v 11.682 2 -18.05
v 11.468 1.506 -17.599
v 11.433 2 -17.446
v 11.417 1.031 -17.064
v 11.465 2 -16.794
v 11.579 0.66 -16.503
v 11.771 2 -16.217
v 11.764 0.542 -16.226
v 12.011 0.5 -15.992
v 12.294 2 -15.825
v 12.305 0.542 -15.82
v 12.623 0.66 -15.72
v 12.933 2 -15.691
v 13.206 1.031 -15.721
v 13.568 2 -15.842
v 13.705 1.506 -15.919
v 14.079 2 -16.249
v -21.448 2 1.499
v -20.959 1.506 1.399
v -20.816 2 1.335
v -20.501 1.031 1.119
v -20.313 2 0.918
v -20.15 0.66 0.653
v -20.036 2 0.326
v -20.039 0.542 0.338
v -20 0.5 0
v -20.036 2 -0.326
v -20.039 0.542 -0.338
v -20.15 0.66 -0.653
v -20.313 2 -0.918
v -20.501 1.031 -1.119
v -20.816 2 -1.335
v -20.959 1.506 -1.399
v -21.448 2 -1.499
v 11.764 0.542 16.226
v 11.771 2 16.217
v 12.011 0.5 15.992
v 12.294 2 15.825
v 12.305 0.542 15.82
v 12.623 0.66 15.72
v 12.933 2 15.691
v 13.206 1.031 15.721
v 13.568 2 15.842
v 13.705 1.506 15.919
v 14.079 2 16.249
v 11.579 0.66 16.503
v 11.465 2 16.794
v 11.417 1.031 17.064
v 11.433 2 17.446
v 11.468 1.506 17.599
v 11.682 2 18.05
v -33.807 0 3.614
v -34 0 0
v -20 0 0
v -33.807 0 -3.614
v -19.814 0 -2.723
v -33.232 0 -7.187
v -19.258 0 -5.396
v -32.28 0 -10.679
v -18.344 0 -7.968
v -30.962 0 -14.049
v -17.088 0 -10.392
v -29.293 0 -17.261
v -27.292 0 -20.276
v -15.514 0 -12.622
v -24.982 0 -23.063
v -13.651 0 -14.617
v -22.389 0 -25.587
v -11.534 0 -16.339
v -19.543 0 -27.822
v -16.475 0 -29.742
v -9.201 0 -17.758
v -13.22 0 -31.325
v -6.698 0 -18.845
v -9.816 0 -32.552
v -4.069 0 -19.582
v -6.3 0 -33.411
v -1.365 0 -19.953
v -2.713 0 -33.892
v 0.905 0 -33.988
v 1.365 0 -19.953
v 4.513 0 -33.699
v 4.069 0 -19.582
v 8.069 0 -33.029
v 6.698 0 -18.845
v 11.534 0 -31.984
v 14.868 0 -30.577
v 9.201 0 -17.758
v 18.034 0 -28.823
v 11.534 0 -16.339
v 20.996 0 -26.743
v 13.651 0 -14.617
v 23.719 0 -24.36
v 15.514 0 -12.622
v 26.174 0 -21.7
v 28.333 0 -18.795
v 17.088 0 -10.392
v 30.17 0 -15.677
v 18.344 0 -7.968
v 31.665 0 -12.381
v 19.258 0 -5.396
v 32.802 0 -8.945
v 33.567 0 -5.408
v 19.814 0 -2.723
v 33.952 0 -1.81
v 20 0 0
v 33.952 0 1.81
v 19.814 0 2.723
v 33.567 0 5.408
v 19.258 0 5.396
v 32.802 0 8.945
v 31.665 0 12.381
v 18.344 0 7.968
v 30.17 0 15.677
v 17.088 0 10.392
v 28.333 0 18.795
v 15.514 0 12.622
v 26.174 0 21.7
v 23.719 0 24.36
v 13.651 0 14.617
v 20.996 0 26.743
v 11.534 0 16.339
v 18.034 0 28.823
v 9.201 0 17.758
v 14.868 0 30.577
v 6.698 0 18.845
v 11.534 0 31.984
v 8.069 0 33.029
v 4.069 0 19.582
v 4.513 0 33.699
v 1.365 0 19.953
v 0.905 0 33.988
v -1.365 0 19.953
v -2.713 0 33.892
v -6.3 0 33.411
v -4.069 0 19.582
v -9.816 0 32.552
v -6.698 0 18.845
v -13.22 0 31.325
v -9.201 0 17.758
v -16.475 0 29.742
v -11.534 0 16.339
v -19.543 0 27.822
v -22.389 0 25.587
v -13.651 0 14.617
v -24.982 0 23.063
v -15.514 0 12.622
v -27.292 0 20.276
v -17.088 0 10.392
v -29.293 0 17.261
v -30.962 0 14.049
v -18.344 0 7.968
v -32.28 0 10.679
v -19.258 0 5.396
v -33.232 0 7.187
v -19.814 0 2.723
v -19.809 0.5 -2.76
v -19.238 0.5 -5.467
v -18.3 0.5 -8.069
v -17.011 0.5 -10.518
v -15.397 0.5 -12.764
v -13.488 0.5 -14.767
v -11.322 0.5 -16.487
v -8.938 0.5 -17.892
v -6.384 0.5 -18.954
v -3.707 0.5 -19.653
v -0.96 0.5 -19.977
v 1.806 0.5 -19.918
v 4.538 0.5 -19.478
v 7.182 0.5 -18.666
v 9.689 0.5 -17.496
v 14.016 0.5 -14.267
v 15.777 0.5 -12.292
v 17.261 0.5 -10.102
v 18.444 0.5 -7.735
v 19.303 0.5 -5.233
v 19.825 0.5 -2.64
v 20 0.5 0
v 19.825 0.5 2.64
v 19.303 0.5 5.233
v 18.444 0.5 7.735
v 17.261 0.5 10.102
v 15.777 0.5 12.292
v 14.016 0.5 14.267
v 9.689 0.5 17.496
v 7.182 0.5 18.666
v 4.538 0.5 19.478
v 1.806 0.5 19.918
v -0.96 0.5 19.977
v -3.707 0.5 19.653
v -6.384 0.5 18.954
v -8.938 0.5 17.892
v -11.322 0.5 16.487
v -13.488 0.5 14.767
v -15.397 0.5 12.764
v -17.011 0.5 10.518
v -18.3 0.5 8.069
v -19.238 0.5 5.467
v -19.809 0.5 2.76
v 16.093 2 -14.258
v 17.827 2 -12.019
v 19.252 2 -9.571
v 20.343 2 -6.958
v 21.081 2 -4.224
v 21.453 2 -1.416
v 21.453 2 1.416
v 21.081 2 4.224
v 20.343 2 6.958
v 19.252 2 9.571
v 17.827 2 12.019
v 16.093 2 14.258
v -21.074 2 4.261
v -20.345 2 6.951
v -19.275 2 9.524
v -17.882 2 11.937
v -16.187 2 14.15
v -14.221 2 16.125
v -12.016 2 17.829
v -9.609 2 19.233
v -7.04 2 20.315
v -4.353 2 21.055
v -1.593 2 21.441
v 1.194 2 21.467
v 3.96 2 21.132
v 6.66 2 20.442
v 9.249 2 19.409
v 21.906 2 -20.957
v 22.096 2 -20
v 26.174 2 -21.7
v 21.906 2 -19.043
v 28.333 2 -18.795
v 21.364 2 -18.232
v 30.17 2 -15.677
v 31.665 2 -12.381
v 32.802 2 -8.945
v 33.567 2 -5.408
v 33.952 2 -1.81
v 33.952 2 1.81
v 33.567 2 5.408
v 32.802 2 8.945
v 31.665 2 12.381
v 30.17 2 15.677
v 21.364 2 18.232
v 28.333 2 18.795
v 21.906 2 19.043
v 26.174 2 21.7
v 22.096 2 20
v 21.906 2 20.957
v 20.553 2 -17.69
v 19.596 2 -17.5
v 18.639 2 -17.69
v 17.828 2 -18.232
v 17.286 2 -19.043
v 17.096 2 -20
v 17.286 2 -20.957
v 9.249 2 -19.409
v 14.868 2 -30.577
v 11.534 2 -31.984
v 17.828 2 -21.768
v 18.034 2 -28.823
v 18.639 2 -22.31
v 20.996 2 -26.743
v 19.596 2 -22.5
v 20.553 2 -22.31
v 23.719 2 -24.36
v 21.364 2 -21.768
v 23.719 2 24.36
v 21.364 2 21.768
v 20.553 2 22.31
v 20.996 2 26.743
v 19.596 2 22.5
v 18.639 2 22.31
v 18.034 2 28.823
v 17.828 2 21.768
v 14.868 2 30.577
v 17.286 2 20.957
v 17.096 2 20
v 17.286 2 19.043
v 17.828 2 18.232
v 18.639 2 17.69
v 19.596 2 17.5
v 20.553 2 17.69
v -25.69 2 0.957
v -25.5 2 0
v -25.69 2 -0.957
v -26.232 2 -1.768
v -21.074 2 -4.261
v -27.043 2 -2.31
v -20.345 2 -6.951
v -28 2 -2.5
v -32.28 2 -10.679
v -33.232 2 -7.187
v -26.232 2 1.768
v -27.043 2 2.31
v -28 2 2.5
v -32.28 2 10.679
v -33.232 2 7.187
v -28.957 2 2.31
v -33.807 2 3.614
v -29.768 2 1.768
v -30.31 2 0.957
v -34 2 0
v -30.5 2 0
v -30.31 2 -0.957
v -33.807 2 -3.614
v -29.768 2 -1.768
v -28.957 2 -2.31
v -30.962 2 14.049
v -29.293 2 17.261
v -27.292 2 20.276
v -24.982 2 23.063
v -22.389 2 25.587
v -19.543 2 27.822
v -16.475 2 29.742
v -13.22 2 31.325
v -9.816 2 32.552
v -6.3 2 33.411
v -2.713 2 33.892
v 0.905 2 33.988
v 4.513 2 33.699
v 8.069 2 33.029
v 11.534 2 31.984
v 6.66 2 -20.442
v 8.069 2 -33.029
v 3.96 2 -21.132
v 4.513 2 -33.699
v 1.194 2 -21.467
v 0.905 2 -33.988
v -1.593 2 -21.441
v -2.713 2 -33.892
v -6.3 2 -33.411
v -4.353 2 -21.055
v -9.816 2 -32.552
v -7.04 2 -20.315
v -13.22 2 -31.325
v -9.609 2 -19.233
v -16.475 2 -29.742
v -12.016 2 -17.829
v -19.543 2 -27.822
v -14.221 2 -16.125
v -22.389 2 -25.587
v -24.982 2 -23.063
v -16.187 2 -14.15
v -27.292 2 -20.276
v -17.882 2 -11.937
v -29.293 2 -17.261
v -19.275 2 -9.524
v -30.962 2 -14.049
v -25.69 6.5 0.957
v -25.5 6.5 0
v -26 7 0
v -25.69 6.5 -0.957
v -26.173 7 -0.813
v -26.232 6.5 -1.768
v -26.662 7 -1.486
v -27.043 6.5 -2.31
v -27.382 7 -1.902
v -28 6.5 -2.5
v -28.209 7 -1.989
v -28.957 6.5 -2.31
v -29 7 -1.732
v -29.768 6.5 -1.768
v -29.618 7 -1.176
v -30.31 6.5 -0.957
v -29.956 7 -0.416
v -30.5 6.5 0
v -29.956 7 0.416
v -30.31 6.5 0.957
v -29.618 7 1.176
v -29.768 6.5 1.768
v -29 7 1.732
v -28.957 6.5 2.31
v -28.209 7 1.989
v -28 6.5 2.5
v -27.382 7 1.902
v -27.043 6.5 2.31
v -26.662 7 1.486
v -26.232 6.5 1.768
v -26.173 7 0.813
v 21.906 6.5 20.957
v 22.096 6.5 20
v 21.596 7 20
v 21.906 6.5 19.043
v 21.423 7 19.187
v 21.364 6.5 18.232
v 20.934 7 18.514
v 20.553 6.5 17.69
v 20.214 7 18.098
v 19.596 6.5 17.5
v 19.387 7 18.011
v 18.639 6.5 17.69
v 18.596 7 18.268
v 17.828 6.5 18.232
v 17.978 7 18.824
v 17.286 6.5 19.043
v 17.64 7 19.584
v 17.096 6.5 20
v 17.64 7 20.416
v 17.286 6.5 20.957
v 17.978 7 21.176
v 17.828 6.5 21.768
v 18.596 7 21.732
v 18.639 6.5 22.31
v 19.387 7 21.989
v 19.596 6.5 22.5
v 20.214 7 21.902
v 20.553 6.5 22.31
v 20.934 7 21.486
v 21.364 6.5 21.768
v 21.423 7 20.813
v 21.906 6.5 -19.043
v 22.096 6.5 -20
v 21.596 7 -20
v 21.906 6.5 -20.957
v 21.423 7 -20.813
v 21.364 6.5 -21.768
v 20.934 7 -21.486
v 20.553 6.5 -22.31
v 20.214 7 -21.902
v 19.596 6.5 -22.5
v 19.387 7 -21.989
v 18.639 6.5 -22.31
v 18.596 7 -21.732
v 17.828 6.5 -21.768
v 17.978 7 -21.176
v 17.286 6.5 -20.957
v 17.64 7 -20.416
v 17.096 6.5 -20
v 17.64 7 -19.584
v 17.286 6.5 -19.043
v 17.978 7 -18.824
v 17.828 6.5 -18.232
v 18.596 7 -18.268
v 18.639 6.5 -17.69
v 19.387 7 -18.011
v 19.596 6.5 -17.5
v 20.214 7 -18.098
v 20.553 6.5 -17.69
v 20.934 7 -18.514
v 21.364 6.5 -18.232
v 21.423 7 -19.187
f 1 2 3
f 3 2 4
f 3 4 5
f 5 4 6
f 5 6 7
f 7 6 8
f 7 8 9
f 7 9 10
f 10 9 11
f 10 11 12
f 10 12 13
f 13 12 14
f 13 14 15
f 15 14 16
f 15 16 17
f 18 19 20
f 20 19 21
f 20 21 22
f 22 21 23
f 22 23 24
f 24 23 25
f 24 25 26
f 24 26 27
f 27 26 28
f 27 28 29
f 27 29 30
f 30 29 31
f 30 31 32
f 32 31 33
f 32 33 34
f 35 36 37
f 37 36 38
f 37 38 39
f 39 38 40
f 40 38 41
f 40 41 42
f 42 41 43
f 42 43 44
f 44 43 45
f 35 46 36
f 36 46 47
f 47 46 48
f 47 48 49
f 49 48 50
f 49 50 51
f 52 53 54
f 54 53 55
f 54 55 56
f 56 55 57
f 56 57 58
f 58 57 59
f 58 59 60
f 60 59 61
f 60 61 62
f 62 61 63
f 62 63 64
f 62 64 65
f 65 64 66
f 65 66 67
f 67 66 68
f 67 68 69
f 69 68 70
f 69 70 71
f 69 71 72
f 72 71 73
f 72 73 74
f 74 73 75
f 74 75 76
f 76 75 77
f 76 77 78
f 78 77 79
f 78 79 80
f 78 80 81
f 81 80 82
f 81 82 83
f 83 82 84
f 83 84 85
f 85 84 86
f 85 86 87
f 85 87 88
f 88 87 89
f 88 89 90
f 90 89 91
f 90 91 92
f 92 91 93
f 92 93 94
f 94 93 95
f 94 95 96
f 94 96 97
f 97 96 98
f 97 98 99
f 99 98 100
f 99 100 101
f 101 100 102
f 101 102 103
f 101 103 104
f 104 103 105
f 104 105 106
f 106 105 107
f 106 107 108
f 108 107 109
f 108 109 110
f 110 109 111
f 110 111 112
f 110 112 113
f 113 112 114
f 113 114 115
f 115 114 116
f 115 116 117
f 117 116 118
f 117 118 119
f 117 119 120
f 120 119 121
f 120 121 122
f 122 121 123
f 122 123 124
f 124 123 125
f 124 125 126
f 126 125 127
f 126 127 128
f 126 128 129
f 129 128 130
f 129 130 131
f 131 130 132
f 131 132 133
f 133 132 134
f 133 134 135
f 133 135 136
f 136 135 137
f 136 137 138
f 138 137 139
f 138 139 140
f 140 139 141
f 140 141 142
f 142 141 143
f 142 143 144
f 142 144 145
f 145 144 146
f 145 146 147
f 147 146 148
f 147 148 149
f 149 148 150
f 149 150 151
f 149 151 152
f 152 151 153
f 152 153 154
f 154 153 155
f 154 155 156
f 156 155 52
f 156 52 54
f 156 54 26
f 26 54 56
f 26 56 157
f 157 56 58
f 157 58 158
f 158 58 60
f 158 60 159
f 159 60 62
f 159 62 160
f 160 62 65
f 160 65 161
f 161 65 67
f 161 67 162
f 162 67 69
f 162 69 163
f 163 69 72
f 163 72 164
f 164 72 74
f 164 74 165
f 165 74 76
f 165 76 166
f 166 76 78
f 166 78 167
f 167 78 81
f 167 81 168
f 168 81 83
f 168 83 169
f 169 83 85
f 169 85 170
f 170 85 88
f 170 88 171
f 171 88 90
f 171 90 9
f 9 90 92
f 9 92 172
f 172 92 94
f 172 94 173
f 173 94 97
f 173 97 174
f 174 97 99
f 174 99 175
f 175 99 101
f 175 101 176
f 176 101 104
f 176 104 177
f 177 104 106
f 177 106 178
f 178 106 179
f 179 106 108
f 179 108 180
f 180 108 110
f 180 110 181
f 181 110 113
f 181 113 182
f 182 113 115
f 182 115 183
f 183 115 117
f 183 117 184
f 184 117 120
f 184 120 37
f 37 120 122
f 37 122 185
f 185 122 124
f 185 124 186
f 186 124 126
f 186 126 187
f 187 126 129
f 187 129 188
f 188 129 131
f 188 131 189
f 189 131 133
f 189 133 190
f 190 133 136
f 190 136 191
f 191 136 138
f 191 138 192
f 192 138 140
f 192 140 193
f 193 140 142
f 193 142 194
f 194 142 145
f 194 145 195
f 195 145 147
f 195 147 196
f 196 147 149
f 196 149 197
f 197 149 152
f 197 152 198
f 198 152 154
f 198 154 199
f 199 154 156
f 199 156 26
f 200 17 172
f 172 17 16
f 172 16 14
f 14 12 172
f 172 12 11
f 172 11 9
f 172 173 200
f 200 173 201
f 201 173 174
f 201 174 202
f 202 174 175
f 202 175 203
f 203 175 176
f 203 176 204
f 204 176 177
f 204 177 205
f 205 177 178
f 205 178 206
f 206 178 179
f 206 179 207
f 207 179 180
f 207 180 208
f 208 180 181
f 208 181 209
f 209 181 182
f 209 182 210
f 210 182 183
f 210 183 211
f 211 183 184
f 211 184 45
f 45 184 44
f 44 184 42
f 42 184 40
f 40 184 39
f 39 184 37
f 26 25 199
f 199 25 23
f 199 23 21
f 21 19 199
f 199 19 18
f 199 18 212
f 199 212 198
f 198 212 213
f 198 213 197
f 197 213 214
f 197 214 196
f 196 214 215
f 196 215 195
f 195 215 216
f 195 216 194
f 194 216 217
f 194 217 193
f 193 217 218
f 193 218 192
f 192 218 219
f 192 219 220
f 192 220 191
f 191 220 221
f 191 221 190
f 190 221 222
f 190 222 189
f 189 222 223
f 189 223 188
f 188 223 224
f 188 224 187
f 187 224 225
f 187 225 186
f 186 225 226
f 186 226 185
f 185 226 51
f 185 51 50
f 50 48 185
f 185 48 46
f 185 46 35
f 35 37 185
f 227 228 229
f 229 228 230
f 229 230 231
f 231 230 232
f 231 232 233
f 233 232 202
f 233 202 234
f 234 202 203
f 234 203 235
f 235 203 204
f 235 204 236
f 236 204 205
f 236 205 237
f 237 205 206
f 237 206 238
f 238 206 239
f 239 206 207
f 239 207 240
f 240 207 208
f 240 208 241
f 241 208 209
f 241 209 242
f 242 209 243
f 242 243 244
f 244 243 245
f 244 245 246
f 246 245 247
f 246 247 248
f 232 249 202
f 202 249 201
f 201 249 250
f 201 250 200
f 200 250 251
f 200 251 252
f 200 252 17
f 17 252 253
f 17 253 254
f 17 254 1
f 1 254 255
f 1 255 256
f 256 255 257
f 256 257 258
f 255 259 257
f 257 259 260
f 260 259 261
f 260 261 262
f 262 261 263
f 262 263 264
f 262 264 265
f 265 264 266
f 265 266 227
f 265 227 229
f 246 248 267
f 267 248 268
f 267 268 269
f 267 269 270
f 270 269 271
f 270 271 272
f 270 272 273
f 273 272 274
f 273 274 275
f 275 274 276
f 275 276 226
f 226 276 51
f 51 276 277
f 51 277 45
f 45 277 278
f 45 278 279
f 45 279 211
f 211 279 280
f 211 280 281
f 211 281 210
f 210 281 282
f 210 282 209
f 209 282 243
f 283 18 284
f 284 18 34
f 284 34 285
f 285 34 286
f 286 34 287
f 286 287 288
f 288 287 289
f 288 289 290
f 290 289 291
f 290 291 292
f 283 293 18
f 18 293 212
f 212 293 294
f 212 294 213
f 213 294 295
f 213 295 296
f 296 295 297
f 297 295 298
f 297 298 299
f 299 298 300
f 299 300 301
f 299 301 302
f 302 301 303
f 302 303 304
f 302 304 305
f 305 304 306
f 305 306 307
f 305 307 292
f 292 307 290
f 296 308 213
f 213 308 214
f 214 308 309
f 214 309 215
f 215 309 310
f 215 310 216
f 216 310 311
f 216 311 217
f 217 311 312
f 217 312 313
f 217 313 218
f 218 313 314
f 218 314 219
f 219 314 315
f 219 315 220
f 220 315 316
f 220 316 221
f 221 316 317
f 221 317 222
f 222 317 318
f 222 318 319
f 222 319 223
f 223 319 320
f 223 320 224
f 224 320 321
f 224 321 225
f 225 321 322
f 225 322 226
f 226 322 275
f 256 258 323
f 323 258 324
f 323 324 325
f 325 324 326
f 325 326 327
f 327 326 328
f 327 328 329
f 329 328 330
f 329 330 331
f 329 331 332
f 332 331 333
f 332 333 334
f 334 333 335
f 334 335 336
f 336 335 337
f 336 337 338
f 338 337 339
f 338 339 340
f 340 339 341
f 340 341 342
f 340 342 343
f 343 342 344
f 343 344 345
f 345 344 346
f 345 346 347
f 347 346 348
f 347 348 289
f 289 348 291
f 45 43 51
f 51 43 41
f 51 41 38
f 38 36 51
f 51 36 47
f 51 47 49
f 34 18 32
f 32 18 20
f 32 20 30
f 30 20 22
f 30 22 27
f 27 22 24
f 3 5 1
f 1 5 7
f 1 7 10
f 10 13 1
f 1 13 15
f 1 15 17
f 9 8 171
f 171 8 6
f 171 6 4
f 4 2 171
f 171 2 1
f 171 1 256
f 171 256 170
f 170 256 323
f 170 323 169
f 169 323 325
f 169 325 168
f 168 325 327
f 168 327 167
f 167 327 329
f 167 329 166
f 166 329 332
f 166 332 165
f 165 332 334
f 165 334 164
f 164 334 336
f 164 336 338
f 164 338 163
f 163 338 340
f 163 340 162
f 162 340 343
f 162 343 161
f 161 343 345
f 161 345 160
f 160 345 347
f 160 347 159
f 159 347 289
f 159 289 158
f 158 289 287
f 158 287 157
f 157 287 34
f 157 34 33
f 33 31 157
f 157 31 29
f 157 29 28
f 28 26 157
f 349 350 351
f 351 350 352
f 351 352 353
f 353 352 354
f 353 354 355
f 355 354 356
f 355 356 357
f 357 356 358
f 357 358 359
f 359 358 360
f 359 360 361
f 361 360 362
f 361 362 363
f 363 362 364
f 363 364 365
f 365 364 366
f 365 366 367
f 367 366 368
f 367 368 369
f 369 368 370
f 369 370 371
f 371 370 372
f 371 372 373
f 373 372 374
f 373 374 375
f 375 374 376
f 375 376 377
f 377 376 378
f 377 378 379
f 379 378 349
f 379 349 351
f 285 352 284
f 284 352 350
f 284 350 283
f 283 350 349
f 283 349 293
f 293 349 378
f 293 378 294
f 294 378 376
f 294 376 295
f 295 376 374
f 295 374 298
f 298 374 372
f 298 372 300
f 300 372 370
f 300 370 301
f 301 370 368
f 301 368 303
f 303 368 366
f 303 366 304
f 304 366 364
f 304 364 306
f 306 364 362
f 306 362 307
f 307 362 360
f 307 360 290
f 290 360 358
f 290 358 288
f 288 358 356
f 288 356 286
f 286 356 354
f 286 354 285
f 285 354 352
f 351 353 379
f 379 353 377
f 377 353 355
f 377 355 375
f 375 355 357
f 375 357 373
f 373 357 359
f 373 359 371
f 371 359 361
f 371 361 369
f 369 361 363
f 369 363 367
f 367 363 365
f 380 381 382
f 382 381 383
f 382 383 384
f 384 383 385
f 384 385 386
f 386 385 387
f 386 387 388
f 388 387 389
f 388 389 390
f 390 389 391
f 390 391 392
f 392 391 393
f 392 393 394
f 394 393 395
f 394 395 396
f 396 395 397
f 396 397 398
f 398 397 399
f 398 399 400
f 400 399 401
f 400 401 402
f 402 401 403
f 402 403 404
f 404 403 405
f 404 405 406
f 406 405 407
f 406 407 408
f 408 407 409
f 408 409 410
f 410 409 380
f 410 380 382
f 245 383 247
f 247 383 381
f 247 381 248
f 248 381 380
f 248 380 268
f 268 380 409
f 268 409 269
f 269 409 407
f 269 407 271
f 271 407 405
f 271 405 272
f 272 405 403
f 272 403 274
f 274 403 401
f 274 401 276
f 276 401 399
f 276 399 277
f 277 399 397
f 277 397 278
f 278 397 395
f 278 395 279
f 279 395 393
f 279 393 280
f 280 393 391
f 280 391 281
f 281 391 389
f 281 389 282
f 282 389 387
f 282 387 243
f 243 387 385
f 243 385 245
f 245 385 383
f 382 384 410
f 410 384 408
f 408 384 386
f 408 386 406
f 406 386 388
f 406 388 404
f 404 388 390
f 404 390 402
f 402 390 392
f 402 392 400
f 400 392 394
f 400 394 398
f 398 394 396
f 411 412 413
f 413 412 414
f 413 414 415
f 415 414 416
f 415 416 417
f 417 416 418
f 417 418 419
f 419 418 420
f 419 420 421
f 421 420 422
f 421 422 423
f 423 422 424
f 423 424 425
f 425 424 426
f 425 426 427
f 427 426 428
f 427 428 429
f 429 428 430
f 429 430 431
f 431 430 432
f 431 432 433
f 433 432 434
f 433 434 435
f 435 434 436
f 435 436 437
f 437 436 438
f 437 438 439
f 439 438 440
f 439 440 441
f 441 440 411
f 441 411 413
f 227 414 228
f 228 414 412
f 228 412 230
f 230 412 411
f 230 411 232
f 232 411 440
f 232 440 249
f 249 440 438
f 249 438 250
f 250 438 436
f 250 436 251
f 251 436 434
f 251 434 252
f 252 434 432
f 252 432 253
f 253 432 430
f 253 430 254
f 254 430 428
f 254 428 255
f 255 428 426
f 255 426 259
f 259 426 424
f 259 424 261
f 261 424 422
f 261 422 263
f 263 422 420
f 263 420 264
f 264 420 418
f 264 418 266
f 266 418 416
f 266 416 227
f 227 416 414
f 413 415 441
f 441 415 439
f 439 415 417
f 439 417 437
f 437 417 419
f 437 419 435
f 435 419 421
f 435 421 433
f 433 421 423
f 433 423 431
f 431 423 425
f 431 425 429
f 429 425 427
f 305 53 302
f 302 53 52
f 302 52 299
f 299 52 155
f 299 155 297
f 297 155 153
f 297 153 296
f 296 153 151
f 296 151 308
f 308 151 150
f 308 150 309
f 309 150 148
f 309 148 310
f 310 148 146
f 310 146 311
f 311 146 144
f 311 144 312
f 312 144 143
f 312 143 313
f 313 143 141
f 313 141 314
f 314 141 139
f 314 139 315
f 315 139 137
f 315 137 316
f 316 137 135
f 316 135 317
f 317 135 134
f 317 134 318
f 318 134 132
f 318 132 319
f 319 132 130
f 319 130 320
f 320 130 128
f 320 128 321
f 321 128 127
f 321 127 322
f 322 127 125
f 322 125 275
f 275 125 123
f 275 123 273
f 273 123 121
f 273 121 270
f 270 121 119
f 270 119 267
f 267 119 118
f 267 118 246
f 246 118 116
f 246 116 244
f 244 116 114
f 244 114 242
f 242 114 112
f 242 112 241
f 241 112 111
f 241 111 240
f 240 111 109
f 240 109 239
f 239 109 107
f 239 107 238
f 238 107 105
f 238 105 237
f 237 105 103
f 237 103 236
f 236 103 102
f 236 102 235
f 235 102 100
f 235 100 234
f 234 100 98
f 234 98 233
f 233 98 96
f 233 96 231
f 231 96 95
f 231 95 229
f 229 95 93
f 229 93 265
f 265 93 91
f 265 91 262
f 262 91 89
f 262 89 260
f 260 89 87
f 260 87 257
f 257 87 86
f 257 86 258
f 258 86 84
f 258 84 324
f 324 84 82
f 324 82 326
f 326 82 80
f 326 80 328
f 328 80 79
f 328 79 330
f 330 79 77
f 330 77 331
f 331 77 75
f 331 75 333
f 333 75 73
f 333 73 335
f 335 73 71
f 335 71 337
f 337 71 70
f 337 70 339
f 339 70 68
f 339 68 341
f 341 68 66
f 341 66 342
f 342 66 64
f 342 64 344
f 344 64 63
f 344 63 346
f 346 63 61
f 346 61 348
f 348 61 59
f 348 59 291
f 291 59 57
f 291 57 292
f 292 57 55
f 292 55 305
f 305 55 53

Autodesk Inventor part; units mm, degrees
ref_plane "YZ Plane" through (0, 0, 0) normal (1, 0, 0) x (0, 1, 0)
ref_plane "XZ Plane" through (0, 0, 0) normal (0, 1, 0) x (-1, 0, 0)
ref_plane "XY Plane" through (0, 0, 0) normal (0, 0, 1) x (1, 0, 0)
sketch "Эскиз1" plane through (0, 0, 0) normal (0, 1, 0) x (-1, 0, 0)
  circle A0 centre (0, 0) radius 34
  dimension "d0" = 68
extrude "Выдавливание1" add sketch "Эскиз1" along normal blind 2
sketch "Эскиз2" plane through (0, 2, 0) normal (0, 1, 0) x (1, 0, 0)
  circle A0 centre (0, 0) radius 28
  line L0 (19.5959, -20) -> (19.5959, 20)
  line L1 (19.5959, -20) -> (-28, 0)
  line L2 (19.5959, 20) -> (-28, 0)
  circle A1 centre (-28, 0) radius 2.5
  circle A2 centre (19.5959, -20) radius 2.5
  circle A3 centre (19.5959, 20) radius 2.5
  dimension "d3" = 56
  dimension "d4" = 40
  dimension "d5" = 5
extrude "Выдавливание2" add sketch "Эскиз2" along normal blind 5 contours A3 L0 A0 | A0 A3 | A2 A0 | A0 L0 A2 | L2 A3 A0 | L0 A3 L2 | L1 A2 L0 | A0 A2 L1 | A1 L2 A0 | A0 A1 | A1 L1 L2 | A0 L1 A1
chamfer "Фаска1" distance 0.5 angle 45 3 edges at (17.0959, 7, -20) (17.0959, 7, 20) (-30.5, 7, 0)
sketch "Эскиз3" plane through (0, 2, 0) normal (0, 1, 0) x (1, 0, 0)
  circle A0 centre (0, 0) radius 20
  circle A1 centre (-28, 0) radius 2 projected
  circle A2 centre (19.5959, 20) radius 2 projected
  circle A3 centre (19.5959, -20) radius 2 projected
  line L0 (-28, 0) -> (19.5959, -20)
  circle A4 centre (-28, 0) radius 2.5 projected
  line L1 (19.5959, 20) -> (-28, 0)
  circle A5 centre (11.289, -16.5094) radius 1.5
  circle A6 centre (11.289, 16.5094) radius 1.5
  circle A7 centre (-20, 0) radius 1.5
  dimension "d11" = 40
  dimension "d17" = 3
extrude "Выдавливание3" cut sketch "Эскиз3" against normal blind 5 contours A0 A5 L0 A7 L1 A6 | A6 L1 A0 | A0 L0 A5 | L1 A6 A0 | L1 A0 A6 | A0 A5 L0 | A5 A0 L0 | A7 A0 picked at (11.3081, 15.9275) picked at (11.3081, -15.9275) picked at (10.6892, 16.4081) picked at (-9.3619, 9.1636) picked at (10.6892, -16.4081) picked at (-9.3619, -9.1636) picked at (-19.4958, 0)
chamfer "Фаска2" distance 1.5 angle 45 1 edges at (-20, 2, 0)
sketch "Эскиз4" plane through (0, 2, 0) normal (0, 1, 0) x (1, 0, 0)
  circle A0 centre (-28, 0) radius 2 projected
  circle A1 centre (19.5959, -20) radius 2 projected
  circle A2 centre (19.5959, 20) radius 2 projected
  circle A3 centre (-28, 0) radius 2 projected
  line L0 (19.5959, -20) -> (-28, 0)
  circle A4 centre (19.5959, 20) radius 2 projected
  line L1 (-28, 0) -> (19.5959, 20)
  circle A5 centre (0, 0) radius 20 projected
  circle A6 centre (0, 0) radius 21.5 projected
  circle A7 centre (12.9117, 17.1912) radius 1.5
  circle A8 centre (12.9117, -17.1912) radius 1.5
  circle A9 centre (-21.5, 0) radius 1.5
extrude "Выдавливание4" add sketch "Эскиз4" against normal up to surface (2 mm away) contours A7 L1 A6 | A6 L1 A7 | A9 A6 | A6 A9 | A8 L0 A6 | A6 L0 A8 | A6 A7 L1 | L1 A7 A6 | A6 A8 L0 | L0 A8 A6
properties part number "Шапка лидара"
